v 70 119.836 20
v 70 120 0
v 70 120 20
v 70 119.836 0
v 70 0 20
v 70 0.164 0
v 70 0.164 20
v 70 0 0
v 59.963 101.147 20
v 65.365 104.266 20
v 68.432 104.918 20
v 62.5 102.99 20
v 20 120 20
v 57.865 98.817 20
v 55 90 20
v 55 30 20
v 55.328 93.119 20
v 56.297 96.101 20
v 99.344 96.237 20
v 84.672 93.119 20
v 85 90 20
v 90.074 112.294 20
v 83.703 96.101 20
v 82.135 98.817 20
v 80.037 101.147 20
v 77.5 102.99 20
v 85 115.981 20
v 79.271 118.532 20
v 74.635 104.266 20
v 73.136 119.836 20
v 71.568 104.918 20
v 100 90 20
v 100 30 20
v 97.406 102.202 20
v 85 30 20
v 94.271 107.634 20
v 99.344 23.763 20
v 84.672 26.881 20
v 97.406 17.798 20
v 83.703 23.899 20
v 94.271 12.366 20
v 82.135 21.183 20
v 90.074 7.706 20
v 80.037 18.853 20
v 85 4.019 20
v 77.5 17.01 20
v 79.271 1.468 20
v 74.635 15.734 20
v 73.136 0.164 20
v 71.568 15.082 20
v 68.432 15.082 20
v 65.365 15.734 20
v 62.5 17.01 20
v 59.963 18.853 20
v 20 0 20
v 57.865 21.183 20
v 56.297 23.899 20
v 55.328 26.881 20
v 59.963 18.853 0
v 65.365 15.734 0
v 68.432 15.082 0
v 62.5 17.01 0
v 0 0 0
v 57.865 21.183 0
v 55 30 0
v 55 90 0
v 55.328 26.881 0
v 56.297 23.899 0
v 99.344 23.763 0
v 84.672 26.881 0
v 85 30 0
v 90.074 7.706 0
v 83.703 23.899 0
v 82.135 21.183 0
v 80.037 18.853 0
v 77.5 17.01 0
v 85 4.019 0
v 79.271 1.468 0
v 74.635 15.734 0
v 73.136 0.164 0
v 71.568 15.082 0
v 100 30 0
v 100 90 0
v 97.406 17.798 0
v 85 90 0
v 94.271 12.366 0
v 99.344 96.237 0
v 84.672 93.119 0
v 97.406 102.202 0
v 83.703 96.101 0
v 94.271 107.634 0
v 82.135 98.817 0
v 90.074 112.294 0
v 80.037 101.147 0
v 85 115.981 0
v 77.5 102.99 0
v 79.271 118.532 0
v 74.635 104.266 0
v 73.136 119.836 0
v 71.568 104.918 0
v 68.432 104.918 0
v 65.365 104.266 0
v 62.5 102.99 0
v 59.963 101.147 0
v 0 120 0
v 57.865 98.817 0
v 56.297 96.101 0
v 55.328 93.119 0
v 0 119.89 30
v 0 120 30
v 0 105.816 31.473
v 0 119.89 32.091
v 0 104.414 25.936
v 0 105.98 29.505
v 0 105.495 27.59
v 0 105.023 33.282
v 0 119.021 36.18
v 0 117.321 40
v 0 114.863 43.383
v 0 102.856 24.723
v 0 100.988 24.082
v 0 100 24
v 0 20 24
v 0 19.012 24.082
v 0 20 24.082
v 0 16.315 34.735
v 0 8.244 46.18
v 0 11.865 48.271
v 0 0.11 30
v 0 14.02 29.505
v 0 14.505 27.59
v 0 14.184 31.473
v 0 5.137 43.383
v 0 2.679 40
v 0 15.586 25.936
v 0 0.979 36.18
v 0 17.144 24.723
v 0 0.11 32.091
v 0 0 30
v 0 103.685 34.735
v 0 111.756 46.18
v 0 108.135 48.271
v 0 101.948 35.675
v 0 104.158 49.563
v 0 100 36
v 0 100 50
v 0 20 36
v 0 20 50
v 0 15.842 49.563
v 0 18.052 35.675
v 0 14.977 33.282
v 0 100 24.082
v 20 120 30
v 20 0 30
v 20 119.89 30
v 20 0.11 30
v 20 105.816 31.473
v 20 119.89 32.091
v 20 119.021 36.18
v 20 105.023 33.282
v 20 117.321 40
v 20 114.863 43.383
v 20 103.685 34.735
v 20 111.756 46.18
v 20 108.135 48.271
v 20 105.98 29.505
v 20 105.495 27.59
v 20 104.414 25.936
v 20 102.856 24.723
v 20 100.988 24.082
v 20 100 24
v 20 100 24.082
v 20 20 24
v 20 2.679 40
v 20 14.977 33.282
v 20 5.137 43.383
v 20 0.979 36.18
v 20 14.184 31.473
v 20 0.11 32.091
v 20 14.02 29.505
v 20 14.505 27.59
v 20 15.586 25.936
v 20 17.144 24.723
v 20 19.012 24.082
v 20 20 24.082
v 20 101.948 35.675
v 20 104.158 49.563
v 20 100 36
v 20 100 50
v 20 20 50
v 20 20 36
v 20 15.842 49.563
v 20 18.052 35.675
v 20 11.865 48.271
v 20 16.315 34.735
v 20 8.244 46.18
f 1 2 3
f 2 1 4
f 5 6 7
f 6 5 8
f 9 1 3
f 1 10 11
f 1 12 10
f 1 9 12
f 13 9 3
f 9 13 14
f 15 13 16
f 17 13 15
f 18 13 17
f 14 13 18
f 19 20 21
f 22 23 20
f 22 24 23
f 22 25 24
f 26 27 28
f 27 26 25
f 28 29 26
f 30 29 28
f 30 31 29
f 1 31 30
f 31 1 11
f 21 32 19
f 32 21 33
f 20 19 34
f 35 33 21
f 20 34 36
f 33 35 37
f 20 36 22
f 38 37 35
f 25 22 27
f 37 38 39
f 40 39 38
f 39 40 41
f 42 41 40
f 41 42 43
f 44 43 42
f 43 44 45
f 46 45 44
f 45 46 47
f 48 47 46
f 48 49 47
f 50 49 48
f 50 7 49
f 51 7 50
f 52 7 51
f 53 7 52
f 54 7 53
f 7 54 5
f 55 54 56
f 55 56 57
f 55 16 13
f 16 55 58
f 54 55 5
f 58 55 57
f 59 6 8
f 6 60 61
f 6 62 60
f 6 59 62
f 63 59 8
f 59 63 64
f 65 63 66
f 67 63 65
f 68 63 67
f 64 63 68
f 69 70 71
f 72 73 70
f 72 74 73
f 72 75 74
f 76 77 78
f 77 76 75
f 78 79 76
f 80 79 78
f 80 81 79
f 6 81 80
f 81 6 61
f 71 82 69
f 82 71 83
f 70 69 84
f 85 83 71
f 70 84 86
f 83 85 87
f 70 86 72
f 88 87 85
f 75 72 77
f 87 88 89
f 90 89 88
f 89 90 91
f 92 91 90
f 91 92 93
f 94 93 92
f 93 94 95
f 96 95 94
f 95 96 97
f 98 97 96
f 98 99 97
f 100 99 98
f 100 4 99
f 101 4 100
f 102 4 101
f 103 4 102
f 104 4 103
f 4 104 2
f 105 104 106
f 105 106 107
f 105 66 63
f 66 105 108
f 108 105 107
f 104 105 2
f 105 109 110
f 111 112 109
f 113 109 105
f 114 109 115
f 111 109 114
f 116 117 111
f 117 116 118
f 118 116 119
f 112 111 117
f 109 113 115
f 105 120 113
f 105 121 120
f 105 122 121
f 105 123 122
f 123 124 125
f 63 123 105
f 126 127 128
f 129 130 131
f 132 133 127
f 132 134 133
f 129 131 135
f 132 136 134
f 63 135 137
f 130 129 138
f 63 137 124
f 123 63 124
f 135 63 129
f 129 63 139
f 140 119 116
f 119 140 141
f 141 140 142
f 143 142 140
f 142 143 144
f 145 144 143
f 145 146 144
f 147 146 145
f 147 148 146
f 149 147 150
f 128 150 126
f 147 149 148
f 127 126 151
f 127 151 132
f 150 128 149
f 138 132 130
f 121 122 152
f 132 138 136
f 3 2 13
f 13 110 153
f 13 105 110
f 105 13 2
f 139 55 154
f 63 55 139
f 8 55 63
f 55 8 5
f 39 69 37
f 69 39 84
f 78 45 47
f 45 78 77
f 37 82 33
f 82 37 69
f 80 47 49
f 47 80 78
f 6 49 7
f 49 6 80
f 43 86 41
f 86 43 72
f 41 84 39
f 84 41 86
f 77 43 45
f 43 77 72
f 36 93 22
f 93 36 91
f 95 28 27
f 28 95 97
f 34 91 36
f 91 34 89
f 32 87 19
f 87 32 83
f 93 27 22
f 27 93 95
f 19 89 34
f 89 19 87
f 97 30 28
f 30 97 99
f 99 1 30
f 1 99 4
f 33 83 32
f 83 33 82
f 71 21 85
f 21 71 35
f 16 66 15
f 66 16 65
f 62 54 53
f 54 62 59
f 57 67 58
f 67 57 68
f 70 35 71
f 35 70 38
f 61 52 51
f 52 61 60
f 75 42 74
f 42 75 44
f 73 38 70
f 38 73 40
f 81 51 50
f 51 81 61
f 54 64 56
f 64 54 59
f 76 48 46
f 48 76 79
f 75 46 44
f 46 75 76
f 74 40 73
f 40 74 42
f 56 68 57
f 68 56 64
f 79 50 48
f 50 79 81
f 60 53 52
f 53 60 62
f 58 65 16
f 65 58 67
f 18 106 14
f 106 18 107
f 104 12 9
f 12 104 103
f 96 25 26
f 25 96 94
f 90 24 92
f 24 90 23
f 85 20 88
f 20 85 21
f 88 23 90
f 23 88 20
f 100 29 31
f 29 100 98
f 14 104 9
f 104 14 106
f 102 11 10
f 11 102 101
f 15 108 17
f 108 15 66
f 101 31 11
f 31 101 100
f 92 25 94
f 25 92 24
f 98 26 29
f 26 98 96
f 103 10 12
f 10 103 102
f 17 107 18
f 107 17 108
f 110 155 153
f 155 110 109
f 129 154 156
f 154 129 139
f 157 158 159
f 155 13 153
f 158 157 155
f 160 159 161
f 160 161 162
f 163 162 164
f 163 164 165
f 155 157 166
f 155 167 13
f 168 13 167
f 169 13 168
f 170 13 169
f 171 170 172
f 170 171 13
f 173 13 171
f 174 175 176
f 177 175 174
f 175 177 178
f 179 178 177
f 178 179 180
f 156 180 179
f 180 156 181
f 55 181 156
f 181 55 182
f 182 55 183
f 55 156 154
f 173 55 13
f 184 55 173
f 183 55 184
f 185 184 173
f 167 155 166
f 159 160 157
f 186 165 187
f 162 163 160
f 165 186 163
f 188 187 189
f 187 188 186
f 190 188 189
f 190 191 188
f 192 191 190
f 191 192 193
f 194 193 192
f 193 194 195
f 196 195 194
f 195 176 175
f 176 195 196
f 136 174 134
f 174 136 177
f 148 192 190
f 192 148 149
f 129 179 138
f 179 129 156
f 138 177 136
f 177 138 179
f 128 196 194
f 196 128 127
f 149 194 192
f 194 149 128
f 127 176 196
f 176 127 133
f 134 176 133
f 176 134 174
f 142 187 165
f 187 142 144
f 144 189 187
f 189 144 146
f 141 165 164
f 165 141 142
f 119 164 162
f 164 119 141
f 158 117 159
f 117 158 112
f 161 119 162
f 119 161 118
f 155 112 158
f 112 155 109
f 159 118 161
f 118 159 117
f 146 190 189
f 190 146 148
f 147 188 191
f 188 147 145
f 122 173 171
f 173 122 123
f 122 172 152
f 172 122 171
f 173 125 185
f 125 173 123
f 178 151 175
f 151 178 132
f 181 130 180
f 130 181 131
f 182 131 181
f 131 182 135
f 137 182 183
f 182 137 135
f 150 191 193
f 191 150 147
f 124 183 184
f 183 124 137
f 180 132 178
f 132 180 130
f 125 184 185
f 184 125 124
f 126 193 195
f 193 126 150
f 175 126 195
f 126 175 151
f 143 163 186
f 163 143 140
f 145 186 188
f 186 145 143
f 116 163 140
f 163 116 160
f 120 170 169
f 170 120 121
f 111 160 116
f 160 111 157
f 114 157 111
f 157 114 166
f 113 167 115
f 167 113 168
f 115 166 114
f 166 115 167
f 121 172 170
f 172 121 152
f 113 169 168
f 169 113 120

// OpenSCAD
// ex_002

module plate_with_long_hole(width, height, thickness, big_circle, small_circle) {
    difference() {
        union() {
            cube([height - big_circle, width, thickness]);
            translate([height - big_circle, big_circle, 0]) cylinder(thickness, big_circle, big_circle);
            translate([height - big_circle, width - big_circle, 0]) cylinder(thickness, big_circle, big_circle);
            translate([height - big_circle, big_circle, 0]) cube([big_circle, width - 2 * big_circle, thickness]);
        };
        
        union() {
            translate([height - big_circle - small_circle, big_circle, 0]) cube([2 * small_circle, width - 2 * big_circle, thickness]);
            translate([height - big_circle, big_circle, 0]) cylinder(thickness, small_circle, small_circle);
            translate([height - big_circle, width - big_circle, 0]) cylinder(thickness, small_circle, small_circle);
        }
     
    }
}

union() {
    plate_with_long_hole(120, 100, 20, 30, 15);
    translate([20, 0, 0]) rotate([0, -90, 0]) plate_with_long_hole(120, 50, 20, 20, 6);
}
